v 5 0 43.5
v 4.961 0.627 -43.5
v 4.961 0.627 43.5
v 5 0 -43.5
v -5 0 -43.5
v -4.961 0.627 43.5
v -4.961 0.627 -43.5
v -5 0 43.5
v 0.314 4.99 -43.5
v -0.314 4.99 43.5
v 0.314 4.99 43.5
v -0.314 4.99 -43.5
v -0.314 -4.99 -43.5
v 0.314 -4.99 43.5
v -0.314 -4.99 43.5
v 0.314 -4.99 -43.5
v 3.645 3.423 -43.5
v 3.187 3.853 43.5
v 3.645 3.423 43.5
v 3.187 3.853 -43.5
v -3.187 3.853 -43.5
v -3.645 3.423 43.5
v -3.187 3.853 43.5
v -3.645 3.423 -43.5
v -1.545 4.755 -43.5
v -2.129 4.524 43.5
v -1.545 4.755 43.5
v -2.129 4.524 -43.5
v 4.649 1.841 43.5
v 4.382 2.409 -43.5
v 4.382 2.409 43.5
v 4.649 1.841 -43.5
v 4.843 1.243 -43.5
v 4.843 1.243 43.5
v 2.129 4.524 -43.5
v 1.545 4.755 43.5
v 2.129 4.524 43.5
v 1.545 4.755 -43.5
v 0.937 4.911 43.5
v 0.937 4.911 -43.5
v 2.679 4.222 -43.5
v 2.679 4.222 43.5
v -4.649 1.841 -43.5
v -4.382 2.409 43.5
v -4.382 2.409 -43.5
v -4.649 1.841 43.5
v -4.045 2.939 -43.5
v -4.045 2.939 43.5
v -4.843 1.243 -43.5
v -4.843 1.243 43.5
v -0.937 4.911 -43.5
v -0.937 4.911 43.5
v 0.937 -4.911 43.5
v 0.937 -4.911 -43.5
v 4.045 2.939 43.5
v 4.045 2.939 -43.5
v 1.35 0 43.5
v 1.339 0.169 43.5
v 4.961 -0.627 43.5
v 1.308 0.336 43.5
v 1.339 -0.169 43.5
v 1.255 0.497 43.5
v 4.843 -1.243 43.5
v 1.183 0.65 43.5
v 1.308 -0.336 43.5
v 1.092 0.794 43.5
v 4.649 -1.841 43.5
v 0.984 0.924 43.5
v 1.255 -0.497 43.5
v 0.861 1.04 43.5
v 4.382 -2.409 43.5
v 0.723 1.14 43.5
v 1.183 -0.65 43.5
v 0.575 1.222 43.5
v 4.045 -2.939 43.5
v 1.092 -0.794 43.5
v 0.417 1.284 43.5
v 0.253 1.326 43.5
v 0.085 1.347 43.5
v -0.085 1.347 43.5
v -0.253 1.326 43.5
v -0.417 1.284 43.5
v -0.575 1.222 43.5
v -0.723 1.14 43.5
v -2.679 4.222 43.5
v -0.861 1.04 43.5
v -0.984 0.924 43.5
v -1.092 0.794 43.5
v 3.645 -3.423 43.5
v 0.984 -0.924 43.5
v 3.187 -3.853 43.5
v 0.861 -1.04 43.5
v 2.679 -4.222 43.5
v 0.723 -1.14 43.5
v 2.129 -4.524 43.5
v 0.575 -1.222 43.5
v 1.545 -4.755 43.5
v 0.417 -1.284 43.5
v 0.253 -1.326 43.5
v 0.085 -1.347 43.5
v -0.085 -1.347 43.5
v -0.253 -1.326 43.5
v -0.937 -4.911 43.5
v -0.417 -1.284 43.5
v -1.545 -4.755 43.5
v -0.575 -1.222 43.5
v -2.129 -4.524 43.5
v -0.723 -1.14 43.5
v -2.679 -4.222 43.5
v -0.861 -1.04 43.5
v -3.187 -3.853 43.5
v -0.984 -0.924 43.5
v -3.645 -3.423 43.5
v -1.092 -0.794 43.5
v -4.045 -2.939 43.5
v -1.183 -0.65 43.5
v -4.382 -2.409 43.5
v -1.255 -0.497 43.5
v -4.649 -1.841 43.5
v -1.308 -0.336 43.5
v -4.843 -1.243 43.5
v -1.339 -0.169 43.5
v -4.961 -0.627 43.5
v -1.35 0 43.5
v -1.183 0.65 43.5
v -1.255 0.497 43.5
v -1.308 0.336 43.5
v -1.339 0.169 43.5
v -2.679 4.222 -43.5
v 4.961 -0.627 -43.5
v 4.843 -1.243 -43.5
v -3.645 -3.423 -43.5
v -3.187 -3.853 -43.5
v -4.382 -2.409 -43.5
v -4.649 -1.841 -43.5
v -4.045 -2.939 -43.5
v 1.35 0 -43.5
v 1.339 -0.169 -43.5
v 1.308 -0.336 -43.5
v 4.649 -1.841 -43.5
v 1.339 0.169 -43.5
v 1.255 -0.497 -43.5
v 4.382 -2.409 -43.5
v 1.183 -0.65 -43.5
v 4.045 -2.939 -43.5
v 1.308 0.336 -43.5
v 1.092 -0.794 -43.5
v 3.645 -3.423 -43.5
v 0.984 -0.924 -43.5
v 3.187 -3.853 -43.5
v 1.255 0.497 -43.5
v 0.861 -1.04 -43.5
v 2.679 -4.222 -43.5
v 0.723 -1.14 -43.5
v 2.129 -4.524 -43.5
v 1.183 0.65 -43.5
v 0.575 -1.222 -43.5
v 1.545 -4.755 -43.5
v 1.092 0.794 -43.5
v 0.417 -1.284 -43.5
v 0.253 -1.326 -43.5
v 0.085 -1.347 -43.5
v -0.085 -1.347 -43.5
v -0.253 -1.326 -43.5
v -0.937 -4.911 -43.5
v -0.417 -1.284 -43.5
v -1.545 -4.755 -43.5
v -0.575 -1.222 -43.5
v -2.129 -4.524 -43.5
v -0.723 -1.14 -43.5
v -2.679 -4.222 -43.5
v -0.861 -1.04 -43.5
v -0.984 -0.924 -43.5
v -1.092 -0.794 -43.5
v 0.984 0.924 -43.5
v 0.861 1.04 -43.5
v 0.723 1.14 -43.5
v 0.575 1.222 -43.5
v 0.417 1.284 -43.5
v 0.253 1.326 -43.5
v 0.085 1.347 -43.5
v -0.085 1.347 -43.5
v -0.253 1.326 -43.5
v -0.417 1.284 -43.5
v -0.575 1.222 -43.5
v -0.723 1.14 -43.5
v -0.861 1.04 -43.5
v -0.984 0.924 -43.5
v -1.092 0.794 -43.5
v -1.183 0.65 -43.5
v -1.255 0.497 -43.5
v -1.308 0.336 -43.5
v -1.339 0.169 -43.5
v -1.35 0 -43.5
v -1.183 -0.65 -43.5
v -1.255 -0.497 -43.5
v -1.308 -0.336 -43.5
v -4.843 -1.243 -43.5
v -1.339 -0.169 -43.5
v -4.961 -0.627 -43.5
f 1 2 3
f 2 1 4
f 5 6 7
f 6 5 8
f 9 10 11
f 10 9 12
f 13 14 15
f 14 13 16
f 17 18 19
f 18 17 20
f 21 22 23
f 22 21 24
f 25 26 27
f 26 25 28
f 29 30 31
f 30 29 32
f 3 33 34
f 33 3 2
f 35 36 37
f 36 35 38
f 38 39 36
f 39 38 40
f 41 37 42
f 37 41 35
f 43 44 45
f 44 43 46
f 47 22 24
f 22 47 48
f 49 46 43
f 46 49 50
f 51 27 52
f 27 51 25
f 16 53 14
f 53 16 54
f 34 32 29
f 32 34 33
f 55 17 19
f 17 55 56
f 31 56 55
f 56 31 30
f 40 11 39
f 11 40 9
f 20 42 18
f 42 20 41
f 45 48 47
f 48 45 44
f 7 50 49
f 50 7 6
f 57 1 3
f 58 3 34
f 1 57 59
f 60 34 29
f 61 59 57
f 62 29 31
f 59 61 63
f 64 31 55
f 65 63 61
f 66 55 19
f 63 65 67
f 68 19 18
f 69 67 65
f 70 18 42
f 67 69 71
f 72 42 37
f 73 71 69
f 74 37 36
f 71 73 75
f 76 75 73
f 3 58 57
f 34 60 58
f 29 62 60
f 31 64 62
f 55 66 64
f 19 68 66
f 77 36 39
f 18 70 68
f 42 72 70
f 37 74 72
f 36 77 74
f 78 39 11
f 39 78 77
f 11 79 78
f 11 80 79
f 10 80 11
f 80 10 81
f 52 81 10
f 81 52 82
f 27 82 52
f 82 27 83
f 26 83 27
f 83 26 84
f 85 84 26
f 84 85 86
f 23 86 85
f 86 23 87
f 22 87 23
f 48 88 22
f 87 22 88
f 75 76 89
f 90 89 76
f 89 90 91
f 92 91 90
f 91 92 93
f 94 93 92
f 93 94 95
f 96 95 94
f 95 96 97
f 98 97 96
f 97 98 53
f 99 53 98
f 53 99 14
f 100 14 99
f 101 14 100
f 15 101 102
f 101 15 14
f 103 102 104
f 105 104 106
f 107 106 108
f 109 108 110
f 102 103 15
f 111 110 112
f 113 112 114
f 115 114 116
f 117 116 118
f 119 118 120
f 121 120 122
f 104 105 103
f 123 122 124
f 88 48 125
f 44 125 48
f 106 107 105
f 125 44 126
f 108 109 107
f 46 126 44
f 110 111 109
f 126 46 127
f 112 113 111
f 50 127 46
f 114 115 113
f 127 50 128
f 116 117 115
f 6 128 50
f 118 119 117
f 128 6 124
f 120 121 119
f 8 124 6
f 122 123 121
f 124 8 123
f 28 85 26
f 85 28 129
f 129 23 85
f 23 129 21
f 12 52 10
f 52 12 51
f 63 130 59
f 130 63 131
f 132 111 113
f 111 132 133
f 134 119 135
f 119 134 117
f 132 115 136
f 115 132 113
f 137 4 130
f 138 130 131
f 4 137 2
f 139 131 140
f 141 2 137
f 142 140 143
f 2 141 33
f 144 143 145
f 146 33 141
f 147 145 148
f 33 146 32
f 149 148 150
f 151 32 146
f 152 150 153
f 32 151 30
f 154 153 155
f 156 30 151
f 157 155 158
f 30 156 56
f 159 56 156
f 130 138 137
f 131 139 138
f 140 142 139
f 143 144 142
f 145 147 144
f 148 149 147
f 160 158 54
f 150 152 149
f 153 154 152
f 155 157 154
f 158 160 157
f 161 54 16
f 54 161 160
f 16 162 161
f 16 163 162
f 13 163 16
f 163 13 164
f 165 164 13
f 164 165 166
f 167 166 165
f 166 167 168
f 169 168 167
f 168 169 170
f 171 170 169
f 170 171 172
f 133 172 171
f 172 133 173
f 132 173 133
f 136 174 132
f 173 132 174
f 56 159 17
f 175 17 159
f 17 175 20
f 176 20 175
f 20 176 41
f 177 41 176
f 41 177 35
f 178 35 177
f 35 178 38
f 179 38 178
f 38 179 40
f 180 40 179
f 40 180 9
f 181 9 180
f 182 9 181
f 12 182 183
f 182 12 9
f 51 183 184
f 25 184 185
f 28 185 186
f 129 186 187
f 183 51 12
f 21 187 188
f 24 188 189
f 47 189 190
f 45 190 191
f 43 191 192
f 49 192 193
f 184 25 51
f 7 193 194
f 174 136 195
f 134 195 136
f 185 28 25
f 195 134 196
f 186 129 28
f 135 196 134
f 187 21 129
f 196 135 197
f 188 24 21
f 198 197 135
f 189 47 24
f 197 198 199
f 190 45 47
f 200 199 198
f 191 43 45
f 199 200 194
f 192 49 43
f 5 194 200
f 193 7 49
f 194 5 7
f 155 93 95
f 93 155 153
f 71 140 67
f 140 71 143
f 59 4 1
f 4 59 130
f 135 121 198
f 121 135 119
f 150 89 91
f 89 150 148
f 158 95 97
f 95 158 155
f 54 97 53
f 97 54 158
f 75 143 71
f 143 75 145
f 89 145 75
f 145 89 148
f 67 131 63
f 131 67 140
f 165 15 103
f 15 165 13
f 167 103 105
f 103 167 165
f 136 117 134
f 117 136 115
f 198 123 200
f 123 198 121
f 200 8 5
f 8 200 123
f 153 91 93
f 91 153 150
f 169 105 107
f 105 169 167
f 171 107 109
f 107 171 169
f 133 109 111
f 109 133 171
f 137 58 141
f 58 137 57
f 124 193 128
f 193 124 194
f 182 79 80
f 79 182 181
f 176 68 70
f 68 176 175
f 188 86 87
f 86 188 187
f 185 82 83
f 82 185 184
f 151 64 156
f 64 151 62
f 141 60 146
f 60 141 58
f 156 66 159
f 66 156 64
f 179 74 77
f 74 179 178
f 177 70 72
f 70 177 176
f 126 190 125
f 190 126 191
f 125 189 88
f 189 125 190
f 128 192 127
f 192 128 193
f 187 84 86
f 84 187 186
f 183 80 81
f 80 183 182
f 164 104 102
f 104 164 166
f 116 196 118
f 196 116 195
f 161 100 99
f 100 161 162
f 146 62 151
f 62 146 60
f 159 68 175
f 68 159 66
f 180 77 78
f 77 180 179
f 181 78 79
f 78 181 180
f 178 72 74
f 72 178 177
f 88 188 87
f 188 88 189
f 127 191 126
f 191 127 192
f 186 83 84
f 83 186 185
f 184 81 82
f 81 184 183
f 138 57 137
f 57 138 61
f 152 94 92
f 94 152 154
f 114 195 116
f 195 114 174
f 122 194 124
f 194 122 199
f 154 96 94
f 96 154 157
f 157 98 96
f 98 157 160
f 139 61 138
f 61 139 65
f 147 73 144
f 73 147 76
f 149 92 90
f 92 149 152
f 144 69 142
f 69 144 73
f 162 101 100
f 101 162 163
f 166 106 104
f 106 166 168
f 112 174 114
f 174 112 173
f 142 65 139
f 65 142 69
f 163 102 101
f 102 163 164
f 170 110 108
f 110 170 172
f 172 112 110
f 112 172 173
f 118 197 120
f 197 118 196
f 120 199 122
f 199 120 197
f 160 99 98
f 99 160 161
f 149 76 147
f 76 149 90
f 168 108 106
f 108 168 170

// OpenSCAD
$fn = 50;


difference() {
	union() {
		translate(v = [0, 0, -43.5000000000]) {
			cylinder(h = 87, r = 5.0000000000);
		}
	}
	union() {
		translate(v = [0, 0, -100.0000000000]) {
			cylinder(h = 200, r = 1.3500000000);
		}
	}
}
